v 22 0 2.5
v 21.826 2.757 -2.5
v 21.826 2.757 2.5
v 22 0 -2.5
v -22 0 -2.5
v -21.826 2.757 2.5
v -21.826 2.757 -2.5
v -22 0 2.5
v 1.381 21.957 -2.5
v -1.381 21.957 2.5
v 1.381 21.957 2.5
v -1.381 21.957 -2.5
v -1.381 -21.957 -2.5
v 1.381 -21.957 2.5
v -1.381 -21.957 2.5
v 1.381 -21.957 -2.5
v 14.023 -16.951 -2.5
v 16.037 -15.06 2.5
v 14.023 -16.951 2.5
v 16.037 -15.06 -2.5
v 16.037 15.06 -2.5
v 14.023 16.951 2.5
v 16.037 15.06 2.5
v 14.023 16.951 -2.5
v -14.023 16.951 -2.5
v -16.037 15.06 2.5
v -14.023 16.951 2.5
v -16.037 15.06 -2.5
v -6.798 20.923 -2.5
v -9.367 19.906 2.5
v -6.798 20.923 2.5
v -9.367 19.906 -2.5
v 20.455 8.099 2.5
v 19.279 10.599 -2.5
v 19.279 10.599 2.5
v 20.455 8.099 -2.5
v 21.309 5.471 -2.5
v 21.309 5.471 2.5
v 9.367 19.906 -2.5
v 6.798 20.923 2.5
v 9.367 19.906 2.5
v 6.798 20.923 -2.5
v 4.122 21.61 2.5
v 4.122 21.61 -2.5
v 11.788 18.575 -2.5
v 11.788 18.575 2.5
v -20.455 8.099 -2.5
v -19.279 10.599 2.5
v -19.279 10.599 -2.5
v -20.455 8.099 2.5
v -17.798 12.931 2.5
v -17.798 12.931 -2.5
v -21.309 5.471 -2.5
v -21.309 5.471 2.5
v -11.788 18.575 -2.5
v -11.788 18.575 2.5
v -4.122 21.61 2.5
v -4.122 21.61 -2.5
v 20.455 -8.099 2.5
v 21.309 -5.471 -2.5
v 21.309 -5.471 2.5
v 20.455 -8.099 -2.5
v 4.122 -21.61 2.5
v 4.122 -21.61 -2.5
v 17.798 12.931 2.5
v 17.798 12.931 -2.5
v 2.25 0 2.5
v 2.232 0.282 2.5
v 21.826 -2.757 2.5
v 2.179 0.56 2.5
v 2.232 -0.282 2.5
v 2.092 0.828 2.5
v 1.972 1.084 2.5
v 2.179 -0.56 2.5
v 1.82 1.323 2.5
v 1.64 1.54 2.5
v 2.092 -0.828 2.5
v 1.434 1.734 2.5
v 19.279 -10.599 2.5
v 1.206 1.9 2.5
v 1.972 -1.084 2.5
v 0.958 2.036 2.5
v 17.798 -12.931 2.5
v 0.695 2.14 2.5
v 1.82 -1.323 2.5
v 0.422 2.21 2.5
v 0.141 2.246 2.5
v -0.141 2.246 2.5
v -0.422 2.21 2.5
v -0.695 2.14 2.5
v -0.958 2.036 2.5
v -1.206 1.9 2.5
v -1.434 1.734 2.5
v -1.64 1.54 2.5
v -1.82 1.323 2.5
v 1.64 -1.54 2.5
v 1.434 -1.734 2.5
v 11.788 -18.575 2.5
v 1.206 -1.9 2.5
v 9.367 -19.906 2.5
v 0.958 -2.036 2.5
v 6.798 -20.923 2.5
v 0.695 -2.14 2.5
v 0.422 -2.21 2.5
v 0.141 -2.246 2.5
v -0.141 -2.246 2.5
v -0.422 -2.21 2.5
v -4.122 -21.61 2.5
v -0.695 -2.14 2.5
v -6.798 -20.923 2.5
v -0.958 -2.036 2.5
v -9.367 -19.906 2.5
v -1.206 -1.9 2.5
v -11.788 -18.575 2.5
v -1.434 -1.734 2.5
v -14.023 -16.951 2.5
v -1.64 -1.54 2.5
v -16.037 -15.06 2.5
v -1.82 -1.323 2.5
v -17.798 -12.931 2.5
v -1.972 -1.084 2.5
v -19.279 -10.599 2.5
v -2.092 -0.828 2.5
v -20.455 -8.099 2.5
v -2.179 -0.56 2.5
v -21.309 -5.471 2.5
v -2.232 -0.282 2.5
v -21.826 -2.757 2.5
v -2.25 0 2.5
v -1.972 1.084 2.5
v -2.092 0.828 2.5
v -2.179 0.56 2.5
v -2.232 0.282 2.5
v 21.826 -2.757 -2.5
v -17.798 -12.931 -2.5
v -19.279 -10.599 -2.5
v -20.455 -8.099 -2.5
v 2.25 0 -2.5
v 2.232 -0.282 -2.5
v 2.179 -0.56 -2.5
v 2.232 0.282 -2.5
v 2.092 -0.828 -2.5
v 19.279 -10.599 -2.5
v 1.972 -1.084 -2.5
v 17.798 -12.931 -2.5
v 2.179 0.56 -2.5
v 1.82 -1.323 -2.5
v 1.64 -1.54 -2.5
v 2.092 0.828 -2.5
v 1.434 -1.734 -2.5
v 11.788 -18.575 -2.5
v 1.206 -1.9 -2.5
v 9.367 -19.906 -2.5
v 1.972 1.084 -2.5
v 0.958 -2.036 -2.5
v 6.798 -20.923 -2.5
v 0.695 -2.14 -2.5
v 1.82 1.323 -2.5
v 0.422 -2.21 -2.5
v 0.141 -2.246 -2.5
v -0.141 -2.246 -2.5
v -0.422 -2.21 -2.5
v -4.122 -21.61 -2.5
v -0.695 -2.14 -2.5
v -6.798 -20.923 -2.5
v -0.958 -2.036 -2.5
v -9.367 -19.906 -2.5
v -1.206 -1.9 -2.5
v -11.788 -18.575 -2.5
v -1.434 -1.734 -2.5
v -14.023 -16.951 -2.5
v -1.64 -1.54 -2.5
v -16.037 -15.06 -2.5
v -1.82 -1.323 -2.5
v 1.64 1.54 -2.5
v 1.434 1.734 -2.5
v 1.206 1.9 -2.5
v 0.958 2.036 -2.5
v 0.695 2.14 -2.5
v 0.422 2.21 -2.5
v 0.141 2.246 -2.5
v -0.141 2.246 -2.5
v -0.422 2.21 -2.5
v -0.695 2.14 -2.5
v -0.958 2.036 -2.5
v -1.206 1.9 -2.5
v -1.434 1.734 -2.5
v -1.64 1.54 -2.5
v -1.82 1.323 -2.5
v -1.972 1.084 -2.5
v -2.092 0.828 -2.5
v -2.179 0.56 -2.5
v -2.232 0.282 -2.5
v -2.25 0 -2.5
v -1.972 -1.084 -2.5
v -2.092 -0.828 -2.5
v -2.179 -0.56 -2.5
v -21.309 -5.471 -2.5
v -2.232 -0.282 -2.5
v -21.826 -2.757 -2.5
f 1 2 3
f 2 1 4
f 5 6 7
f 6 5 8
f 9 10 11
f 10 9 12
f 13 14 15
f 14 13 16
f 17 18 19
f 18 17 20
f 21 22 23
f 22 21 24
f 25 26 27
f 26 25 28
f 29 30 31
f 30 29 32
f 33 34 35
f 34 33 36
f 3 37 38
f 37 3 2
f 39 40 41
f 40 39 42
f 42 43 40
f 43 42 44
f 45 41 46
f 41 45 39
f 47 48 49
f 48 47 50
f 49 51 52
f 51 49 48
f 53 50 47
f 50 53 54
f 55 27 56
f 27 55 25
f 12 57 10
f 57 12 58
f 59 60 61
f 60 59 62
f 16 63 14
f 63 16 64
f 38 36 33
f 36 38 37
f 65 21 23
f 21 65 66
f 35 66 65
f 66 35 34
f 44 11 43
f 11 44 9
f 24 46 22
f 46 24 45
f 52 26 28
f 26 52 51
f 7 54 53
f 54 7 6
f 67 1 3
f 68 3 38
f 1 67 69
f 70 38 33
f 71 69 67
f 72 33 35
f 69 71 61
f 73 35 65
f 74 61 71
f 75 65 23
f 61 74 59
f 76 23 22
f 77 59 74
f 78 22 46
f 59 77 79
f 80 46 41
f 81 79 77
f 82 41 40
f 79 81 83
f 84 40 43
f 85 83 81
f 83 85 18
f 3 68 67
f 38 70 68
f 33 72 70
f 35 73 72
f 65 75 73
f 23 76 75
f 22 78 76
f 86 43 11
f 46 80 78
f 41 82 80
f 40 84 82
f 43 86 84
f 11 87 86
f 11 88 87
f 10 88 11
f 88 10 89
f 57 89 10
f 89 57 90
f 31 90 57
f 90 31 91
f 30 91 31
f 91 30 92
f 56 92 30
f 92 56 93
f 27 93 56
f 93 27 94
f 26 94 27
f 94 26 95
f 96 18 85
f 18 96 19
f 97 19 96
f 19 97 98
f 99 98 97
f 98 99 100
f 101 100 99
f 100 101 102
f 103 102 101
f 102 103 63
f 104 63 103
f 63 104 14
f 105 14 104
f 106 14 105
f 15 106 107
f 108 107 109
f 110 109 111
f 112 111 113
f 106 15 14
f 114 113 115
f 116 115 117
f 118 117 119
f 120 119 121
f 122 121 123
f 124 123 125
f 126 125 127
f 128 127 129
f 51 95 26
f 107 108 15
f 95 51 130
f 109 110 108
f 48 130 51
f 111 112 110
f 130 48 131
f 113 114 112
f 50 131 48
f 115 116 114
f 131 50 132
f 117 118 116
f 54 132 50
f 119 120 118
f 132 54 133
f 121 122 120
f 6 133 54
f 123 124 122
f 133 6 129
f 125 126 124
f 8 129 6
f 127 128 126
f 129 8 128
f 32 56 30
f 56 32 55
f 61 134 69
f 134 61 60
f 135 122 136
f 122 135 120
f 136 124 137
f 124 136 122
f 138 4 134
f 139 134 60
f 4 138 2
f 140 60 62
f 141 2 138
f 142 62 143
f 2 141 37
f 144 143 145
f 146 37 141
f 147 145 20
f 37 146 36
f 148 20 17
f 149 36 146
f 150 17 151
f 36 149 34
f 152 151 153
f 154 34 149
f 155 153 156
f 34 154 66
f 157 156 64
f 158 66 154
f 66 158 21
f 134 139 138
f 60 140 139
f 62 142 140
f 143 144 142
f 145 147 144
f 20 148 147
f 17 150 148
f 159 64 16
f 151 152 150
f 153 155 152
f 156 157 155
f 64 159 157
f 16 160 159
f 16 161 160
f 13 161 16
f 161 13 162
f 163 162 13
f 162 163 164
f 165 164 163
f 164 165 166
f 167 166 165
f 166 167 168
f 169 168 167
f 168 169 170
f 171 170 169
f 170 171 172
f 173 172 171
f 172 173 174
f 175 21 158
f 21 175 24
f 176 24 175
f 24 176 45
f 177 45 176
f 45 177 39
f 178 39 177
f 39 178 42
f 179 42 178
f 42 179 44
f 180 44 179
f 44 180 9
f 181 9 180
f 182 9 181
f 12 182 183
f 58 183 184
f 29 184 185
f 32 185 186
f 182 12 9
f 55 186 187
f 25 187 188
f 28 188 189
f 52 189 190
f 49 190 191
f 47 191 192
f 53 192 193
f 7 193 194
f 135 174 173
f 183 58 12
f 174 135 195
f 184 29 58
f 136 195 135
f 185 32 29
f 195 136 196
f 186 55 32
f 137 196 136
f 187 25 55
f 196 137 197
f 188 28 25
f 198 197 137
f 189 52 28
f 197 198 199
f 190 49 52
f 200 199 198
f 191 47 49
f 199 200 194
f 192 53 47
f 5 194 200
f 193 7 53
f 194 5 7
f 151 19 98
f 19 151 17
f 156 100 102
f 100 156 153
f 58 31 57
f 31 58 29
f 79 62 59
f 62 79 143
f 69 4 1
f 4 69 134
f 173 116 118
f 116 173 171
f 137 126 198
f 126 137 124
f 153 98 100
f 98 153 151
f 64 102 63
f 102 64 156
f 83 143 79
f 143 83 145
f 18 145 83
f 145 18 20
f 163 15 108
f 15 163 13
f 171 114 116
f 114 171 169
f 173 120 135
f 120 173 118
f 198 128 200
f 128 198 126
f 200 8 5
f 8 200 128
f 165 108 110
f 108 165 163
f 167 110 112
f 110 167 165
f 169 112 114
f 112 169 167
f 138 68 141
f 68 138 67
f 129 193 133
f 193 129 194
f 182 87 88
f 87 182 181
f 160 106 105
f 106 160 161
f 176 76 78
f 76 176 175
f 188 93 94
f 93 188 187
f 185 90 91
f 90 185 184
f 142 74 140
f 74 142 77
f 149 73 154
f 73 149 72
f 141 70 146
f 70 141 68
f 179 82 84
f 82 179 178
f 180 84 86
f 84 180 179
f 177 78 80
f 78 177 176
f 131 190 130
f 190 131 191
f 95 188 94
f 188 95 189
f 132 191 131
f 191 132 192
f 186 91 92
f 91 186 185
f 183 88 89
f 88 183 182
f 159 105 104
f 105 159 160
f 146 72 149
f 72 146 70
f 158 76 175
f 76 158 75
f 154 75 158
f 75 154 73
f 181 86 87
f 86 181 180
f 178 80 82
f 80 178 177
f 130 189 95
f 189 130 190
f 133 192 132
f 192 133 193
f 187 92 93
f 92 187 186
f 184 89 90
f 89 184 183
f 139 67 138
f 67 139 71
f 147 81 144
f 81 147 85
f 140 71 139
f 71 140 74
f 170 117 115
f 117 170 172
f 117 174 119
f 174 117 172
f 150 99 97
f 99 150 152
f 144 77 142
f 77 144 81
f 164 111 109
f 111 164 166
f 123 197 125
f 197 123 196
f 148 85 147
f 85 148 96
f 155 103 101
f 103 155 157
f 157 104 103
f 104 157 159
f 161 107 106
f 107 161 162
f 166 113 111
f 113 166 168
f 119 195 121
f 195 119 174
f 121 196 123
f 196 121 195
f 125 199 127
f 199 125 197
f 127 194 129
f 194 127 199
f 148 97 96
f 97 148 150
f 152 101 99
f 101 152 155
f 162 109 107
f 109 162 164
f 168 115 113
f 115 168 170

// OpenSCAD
$fn = 50;


difference() {
	union() {
		translate(v = [0, 0, -2.5000000000]) {
			cylinder(h = 5, r = 22.0000000000);
		}
	}
	union() {
		translate(v = [0, 0, -100.0000000000]) {
			cylinder(h = 200, r = 2.2500000000);
		}
	}
}
